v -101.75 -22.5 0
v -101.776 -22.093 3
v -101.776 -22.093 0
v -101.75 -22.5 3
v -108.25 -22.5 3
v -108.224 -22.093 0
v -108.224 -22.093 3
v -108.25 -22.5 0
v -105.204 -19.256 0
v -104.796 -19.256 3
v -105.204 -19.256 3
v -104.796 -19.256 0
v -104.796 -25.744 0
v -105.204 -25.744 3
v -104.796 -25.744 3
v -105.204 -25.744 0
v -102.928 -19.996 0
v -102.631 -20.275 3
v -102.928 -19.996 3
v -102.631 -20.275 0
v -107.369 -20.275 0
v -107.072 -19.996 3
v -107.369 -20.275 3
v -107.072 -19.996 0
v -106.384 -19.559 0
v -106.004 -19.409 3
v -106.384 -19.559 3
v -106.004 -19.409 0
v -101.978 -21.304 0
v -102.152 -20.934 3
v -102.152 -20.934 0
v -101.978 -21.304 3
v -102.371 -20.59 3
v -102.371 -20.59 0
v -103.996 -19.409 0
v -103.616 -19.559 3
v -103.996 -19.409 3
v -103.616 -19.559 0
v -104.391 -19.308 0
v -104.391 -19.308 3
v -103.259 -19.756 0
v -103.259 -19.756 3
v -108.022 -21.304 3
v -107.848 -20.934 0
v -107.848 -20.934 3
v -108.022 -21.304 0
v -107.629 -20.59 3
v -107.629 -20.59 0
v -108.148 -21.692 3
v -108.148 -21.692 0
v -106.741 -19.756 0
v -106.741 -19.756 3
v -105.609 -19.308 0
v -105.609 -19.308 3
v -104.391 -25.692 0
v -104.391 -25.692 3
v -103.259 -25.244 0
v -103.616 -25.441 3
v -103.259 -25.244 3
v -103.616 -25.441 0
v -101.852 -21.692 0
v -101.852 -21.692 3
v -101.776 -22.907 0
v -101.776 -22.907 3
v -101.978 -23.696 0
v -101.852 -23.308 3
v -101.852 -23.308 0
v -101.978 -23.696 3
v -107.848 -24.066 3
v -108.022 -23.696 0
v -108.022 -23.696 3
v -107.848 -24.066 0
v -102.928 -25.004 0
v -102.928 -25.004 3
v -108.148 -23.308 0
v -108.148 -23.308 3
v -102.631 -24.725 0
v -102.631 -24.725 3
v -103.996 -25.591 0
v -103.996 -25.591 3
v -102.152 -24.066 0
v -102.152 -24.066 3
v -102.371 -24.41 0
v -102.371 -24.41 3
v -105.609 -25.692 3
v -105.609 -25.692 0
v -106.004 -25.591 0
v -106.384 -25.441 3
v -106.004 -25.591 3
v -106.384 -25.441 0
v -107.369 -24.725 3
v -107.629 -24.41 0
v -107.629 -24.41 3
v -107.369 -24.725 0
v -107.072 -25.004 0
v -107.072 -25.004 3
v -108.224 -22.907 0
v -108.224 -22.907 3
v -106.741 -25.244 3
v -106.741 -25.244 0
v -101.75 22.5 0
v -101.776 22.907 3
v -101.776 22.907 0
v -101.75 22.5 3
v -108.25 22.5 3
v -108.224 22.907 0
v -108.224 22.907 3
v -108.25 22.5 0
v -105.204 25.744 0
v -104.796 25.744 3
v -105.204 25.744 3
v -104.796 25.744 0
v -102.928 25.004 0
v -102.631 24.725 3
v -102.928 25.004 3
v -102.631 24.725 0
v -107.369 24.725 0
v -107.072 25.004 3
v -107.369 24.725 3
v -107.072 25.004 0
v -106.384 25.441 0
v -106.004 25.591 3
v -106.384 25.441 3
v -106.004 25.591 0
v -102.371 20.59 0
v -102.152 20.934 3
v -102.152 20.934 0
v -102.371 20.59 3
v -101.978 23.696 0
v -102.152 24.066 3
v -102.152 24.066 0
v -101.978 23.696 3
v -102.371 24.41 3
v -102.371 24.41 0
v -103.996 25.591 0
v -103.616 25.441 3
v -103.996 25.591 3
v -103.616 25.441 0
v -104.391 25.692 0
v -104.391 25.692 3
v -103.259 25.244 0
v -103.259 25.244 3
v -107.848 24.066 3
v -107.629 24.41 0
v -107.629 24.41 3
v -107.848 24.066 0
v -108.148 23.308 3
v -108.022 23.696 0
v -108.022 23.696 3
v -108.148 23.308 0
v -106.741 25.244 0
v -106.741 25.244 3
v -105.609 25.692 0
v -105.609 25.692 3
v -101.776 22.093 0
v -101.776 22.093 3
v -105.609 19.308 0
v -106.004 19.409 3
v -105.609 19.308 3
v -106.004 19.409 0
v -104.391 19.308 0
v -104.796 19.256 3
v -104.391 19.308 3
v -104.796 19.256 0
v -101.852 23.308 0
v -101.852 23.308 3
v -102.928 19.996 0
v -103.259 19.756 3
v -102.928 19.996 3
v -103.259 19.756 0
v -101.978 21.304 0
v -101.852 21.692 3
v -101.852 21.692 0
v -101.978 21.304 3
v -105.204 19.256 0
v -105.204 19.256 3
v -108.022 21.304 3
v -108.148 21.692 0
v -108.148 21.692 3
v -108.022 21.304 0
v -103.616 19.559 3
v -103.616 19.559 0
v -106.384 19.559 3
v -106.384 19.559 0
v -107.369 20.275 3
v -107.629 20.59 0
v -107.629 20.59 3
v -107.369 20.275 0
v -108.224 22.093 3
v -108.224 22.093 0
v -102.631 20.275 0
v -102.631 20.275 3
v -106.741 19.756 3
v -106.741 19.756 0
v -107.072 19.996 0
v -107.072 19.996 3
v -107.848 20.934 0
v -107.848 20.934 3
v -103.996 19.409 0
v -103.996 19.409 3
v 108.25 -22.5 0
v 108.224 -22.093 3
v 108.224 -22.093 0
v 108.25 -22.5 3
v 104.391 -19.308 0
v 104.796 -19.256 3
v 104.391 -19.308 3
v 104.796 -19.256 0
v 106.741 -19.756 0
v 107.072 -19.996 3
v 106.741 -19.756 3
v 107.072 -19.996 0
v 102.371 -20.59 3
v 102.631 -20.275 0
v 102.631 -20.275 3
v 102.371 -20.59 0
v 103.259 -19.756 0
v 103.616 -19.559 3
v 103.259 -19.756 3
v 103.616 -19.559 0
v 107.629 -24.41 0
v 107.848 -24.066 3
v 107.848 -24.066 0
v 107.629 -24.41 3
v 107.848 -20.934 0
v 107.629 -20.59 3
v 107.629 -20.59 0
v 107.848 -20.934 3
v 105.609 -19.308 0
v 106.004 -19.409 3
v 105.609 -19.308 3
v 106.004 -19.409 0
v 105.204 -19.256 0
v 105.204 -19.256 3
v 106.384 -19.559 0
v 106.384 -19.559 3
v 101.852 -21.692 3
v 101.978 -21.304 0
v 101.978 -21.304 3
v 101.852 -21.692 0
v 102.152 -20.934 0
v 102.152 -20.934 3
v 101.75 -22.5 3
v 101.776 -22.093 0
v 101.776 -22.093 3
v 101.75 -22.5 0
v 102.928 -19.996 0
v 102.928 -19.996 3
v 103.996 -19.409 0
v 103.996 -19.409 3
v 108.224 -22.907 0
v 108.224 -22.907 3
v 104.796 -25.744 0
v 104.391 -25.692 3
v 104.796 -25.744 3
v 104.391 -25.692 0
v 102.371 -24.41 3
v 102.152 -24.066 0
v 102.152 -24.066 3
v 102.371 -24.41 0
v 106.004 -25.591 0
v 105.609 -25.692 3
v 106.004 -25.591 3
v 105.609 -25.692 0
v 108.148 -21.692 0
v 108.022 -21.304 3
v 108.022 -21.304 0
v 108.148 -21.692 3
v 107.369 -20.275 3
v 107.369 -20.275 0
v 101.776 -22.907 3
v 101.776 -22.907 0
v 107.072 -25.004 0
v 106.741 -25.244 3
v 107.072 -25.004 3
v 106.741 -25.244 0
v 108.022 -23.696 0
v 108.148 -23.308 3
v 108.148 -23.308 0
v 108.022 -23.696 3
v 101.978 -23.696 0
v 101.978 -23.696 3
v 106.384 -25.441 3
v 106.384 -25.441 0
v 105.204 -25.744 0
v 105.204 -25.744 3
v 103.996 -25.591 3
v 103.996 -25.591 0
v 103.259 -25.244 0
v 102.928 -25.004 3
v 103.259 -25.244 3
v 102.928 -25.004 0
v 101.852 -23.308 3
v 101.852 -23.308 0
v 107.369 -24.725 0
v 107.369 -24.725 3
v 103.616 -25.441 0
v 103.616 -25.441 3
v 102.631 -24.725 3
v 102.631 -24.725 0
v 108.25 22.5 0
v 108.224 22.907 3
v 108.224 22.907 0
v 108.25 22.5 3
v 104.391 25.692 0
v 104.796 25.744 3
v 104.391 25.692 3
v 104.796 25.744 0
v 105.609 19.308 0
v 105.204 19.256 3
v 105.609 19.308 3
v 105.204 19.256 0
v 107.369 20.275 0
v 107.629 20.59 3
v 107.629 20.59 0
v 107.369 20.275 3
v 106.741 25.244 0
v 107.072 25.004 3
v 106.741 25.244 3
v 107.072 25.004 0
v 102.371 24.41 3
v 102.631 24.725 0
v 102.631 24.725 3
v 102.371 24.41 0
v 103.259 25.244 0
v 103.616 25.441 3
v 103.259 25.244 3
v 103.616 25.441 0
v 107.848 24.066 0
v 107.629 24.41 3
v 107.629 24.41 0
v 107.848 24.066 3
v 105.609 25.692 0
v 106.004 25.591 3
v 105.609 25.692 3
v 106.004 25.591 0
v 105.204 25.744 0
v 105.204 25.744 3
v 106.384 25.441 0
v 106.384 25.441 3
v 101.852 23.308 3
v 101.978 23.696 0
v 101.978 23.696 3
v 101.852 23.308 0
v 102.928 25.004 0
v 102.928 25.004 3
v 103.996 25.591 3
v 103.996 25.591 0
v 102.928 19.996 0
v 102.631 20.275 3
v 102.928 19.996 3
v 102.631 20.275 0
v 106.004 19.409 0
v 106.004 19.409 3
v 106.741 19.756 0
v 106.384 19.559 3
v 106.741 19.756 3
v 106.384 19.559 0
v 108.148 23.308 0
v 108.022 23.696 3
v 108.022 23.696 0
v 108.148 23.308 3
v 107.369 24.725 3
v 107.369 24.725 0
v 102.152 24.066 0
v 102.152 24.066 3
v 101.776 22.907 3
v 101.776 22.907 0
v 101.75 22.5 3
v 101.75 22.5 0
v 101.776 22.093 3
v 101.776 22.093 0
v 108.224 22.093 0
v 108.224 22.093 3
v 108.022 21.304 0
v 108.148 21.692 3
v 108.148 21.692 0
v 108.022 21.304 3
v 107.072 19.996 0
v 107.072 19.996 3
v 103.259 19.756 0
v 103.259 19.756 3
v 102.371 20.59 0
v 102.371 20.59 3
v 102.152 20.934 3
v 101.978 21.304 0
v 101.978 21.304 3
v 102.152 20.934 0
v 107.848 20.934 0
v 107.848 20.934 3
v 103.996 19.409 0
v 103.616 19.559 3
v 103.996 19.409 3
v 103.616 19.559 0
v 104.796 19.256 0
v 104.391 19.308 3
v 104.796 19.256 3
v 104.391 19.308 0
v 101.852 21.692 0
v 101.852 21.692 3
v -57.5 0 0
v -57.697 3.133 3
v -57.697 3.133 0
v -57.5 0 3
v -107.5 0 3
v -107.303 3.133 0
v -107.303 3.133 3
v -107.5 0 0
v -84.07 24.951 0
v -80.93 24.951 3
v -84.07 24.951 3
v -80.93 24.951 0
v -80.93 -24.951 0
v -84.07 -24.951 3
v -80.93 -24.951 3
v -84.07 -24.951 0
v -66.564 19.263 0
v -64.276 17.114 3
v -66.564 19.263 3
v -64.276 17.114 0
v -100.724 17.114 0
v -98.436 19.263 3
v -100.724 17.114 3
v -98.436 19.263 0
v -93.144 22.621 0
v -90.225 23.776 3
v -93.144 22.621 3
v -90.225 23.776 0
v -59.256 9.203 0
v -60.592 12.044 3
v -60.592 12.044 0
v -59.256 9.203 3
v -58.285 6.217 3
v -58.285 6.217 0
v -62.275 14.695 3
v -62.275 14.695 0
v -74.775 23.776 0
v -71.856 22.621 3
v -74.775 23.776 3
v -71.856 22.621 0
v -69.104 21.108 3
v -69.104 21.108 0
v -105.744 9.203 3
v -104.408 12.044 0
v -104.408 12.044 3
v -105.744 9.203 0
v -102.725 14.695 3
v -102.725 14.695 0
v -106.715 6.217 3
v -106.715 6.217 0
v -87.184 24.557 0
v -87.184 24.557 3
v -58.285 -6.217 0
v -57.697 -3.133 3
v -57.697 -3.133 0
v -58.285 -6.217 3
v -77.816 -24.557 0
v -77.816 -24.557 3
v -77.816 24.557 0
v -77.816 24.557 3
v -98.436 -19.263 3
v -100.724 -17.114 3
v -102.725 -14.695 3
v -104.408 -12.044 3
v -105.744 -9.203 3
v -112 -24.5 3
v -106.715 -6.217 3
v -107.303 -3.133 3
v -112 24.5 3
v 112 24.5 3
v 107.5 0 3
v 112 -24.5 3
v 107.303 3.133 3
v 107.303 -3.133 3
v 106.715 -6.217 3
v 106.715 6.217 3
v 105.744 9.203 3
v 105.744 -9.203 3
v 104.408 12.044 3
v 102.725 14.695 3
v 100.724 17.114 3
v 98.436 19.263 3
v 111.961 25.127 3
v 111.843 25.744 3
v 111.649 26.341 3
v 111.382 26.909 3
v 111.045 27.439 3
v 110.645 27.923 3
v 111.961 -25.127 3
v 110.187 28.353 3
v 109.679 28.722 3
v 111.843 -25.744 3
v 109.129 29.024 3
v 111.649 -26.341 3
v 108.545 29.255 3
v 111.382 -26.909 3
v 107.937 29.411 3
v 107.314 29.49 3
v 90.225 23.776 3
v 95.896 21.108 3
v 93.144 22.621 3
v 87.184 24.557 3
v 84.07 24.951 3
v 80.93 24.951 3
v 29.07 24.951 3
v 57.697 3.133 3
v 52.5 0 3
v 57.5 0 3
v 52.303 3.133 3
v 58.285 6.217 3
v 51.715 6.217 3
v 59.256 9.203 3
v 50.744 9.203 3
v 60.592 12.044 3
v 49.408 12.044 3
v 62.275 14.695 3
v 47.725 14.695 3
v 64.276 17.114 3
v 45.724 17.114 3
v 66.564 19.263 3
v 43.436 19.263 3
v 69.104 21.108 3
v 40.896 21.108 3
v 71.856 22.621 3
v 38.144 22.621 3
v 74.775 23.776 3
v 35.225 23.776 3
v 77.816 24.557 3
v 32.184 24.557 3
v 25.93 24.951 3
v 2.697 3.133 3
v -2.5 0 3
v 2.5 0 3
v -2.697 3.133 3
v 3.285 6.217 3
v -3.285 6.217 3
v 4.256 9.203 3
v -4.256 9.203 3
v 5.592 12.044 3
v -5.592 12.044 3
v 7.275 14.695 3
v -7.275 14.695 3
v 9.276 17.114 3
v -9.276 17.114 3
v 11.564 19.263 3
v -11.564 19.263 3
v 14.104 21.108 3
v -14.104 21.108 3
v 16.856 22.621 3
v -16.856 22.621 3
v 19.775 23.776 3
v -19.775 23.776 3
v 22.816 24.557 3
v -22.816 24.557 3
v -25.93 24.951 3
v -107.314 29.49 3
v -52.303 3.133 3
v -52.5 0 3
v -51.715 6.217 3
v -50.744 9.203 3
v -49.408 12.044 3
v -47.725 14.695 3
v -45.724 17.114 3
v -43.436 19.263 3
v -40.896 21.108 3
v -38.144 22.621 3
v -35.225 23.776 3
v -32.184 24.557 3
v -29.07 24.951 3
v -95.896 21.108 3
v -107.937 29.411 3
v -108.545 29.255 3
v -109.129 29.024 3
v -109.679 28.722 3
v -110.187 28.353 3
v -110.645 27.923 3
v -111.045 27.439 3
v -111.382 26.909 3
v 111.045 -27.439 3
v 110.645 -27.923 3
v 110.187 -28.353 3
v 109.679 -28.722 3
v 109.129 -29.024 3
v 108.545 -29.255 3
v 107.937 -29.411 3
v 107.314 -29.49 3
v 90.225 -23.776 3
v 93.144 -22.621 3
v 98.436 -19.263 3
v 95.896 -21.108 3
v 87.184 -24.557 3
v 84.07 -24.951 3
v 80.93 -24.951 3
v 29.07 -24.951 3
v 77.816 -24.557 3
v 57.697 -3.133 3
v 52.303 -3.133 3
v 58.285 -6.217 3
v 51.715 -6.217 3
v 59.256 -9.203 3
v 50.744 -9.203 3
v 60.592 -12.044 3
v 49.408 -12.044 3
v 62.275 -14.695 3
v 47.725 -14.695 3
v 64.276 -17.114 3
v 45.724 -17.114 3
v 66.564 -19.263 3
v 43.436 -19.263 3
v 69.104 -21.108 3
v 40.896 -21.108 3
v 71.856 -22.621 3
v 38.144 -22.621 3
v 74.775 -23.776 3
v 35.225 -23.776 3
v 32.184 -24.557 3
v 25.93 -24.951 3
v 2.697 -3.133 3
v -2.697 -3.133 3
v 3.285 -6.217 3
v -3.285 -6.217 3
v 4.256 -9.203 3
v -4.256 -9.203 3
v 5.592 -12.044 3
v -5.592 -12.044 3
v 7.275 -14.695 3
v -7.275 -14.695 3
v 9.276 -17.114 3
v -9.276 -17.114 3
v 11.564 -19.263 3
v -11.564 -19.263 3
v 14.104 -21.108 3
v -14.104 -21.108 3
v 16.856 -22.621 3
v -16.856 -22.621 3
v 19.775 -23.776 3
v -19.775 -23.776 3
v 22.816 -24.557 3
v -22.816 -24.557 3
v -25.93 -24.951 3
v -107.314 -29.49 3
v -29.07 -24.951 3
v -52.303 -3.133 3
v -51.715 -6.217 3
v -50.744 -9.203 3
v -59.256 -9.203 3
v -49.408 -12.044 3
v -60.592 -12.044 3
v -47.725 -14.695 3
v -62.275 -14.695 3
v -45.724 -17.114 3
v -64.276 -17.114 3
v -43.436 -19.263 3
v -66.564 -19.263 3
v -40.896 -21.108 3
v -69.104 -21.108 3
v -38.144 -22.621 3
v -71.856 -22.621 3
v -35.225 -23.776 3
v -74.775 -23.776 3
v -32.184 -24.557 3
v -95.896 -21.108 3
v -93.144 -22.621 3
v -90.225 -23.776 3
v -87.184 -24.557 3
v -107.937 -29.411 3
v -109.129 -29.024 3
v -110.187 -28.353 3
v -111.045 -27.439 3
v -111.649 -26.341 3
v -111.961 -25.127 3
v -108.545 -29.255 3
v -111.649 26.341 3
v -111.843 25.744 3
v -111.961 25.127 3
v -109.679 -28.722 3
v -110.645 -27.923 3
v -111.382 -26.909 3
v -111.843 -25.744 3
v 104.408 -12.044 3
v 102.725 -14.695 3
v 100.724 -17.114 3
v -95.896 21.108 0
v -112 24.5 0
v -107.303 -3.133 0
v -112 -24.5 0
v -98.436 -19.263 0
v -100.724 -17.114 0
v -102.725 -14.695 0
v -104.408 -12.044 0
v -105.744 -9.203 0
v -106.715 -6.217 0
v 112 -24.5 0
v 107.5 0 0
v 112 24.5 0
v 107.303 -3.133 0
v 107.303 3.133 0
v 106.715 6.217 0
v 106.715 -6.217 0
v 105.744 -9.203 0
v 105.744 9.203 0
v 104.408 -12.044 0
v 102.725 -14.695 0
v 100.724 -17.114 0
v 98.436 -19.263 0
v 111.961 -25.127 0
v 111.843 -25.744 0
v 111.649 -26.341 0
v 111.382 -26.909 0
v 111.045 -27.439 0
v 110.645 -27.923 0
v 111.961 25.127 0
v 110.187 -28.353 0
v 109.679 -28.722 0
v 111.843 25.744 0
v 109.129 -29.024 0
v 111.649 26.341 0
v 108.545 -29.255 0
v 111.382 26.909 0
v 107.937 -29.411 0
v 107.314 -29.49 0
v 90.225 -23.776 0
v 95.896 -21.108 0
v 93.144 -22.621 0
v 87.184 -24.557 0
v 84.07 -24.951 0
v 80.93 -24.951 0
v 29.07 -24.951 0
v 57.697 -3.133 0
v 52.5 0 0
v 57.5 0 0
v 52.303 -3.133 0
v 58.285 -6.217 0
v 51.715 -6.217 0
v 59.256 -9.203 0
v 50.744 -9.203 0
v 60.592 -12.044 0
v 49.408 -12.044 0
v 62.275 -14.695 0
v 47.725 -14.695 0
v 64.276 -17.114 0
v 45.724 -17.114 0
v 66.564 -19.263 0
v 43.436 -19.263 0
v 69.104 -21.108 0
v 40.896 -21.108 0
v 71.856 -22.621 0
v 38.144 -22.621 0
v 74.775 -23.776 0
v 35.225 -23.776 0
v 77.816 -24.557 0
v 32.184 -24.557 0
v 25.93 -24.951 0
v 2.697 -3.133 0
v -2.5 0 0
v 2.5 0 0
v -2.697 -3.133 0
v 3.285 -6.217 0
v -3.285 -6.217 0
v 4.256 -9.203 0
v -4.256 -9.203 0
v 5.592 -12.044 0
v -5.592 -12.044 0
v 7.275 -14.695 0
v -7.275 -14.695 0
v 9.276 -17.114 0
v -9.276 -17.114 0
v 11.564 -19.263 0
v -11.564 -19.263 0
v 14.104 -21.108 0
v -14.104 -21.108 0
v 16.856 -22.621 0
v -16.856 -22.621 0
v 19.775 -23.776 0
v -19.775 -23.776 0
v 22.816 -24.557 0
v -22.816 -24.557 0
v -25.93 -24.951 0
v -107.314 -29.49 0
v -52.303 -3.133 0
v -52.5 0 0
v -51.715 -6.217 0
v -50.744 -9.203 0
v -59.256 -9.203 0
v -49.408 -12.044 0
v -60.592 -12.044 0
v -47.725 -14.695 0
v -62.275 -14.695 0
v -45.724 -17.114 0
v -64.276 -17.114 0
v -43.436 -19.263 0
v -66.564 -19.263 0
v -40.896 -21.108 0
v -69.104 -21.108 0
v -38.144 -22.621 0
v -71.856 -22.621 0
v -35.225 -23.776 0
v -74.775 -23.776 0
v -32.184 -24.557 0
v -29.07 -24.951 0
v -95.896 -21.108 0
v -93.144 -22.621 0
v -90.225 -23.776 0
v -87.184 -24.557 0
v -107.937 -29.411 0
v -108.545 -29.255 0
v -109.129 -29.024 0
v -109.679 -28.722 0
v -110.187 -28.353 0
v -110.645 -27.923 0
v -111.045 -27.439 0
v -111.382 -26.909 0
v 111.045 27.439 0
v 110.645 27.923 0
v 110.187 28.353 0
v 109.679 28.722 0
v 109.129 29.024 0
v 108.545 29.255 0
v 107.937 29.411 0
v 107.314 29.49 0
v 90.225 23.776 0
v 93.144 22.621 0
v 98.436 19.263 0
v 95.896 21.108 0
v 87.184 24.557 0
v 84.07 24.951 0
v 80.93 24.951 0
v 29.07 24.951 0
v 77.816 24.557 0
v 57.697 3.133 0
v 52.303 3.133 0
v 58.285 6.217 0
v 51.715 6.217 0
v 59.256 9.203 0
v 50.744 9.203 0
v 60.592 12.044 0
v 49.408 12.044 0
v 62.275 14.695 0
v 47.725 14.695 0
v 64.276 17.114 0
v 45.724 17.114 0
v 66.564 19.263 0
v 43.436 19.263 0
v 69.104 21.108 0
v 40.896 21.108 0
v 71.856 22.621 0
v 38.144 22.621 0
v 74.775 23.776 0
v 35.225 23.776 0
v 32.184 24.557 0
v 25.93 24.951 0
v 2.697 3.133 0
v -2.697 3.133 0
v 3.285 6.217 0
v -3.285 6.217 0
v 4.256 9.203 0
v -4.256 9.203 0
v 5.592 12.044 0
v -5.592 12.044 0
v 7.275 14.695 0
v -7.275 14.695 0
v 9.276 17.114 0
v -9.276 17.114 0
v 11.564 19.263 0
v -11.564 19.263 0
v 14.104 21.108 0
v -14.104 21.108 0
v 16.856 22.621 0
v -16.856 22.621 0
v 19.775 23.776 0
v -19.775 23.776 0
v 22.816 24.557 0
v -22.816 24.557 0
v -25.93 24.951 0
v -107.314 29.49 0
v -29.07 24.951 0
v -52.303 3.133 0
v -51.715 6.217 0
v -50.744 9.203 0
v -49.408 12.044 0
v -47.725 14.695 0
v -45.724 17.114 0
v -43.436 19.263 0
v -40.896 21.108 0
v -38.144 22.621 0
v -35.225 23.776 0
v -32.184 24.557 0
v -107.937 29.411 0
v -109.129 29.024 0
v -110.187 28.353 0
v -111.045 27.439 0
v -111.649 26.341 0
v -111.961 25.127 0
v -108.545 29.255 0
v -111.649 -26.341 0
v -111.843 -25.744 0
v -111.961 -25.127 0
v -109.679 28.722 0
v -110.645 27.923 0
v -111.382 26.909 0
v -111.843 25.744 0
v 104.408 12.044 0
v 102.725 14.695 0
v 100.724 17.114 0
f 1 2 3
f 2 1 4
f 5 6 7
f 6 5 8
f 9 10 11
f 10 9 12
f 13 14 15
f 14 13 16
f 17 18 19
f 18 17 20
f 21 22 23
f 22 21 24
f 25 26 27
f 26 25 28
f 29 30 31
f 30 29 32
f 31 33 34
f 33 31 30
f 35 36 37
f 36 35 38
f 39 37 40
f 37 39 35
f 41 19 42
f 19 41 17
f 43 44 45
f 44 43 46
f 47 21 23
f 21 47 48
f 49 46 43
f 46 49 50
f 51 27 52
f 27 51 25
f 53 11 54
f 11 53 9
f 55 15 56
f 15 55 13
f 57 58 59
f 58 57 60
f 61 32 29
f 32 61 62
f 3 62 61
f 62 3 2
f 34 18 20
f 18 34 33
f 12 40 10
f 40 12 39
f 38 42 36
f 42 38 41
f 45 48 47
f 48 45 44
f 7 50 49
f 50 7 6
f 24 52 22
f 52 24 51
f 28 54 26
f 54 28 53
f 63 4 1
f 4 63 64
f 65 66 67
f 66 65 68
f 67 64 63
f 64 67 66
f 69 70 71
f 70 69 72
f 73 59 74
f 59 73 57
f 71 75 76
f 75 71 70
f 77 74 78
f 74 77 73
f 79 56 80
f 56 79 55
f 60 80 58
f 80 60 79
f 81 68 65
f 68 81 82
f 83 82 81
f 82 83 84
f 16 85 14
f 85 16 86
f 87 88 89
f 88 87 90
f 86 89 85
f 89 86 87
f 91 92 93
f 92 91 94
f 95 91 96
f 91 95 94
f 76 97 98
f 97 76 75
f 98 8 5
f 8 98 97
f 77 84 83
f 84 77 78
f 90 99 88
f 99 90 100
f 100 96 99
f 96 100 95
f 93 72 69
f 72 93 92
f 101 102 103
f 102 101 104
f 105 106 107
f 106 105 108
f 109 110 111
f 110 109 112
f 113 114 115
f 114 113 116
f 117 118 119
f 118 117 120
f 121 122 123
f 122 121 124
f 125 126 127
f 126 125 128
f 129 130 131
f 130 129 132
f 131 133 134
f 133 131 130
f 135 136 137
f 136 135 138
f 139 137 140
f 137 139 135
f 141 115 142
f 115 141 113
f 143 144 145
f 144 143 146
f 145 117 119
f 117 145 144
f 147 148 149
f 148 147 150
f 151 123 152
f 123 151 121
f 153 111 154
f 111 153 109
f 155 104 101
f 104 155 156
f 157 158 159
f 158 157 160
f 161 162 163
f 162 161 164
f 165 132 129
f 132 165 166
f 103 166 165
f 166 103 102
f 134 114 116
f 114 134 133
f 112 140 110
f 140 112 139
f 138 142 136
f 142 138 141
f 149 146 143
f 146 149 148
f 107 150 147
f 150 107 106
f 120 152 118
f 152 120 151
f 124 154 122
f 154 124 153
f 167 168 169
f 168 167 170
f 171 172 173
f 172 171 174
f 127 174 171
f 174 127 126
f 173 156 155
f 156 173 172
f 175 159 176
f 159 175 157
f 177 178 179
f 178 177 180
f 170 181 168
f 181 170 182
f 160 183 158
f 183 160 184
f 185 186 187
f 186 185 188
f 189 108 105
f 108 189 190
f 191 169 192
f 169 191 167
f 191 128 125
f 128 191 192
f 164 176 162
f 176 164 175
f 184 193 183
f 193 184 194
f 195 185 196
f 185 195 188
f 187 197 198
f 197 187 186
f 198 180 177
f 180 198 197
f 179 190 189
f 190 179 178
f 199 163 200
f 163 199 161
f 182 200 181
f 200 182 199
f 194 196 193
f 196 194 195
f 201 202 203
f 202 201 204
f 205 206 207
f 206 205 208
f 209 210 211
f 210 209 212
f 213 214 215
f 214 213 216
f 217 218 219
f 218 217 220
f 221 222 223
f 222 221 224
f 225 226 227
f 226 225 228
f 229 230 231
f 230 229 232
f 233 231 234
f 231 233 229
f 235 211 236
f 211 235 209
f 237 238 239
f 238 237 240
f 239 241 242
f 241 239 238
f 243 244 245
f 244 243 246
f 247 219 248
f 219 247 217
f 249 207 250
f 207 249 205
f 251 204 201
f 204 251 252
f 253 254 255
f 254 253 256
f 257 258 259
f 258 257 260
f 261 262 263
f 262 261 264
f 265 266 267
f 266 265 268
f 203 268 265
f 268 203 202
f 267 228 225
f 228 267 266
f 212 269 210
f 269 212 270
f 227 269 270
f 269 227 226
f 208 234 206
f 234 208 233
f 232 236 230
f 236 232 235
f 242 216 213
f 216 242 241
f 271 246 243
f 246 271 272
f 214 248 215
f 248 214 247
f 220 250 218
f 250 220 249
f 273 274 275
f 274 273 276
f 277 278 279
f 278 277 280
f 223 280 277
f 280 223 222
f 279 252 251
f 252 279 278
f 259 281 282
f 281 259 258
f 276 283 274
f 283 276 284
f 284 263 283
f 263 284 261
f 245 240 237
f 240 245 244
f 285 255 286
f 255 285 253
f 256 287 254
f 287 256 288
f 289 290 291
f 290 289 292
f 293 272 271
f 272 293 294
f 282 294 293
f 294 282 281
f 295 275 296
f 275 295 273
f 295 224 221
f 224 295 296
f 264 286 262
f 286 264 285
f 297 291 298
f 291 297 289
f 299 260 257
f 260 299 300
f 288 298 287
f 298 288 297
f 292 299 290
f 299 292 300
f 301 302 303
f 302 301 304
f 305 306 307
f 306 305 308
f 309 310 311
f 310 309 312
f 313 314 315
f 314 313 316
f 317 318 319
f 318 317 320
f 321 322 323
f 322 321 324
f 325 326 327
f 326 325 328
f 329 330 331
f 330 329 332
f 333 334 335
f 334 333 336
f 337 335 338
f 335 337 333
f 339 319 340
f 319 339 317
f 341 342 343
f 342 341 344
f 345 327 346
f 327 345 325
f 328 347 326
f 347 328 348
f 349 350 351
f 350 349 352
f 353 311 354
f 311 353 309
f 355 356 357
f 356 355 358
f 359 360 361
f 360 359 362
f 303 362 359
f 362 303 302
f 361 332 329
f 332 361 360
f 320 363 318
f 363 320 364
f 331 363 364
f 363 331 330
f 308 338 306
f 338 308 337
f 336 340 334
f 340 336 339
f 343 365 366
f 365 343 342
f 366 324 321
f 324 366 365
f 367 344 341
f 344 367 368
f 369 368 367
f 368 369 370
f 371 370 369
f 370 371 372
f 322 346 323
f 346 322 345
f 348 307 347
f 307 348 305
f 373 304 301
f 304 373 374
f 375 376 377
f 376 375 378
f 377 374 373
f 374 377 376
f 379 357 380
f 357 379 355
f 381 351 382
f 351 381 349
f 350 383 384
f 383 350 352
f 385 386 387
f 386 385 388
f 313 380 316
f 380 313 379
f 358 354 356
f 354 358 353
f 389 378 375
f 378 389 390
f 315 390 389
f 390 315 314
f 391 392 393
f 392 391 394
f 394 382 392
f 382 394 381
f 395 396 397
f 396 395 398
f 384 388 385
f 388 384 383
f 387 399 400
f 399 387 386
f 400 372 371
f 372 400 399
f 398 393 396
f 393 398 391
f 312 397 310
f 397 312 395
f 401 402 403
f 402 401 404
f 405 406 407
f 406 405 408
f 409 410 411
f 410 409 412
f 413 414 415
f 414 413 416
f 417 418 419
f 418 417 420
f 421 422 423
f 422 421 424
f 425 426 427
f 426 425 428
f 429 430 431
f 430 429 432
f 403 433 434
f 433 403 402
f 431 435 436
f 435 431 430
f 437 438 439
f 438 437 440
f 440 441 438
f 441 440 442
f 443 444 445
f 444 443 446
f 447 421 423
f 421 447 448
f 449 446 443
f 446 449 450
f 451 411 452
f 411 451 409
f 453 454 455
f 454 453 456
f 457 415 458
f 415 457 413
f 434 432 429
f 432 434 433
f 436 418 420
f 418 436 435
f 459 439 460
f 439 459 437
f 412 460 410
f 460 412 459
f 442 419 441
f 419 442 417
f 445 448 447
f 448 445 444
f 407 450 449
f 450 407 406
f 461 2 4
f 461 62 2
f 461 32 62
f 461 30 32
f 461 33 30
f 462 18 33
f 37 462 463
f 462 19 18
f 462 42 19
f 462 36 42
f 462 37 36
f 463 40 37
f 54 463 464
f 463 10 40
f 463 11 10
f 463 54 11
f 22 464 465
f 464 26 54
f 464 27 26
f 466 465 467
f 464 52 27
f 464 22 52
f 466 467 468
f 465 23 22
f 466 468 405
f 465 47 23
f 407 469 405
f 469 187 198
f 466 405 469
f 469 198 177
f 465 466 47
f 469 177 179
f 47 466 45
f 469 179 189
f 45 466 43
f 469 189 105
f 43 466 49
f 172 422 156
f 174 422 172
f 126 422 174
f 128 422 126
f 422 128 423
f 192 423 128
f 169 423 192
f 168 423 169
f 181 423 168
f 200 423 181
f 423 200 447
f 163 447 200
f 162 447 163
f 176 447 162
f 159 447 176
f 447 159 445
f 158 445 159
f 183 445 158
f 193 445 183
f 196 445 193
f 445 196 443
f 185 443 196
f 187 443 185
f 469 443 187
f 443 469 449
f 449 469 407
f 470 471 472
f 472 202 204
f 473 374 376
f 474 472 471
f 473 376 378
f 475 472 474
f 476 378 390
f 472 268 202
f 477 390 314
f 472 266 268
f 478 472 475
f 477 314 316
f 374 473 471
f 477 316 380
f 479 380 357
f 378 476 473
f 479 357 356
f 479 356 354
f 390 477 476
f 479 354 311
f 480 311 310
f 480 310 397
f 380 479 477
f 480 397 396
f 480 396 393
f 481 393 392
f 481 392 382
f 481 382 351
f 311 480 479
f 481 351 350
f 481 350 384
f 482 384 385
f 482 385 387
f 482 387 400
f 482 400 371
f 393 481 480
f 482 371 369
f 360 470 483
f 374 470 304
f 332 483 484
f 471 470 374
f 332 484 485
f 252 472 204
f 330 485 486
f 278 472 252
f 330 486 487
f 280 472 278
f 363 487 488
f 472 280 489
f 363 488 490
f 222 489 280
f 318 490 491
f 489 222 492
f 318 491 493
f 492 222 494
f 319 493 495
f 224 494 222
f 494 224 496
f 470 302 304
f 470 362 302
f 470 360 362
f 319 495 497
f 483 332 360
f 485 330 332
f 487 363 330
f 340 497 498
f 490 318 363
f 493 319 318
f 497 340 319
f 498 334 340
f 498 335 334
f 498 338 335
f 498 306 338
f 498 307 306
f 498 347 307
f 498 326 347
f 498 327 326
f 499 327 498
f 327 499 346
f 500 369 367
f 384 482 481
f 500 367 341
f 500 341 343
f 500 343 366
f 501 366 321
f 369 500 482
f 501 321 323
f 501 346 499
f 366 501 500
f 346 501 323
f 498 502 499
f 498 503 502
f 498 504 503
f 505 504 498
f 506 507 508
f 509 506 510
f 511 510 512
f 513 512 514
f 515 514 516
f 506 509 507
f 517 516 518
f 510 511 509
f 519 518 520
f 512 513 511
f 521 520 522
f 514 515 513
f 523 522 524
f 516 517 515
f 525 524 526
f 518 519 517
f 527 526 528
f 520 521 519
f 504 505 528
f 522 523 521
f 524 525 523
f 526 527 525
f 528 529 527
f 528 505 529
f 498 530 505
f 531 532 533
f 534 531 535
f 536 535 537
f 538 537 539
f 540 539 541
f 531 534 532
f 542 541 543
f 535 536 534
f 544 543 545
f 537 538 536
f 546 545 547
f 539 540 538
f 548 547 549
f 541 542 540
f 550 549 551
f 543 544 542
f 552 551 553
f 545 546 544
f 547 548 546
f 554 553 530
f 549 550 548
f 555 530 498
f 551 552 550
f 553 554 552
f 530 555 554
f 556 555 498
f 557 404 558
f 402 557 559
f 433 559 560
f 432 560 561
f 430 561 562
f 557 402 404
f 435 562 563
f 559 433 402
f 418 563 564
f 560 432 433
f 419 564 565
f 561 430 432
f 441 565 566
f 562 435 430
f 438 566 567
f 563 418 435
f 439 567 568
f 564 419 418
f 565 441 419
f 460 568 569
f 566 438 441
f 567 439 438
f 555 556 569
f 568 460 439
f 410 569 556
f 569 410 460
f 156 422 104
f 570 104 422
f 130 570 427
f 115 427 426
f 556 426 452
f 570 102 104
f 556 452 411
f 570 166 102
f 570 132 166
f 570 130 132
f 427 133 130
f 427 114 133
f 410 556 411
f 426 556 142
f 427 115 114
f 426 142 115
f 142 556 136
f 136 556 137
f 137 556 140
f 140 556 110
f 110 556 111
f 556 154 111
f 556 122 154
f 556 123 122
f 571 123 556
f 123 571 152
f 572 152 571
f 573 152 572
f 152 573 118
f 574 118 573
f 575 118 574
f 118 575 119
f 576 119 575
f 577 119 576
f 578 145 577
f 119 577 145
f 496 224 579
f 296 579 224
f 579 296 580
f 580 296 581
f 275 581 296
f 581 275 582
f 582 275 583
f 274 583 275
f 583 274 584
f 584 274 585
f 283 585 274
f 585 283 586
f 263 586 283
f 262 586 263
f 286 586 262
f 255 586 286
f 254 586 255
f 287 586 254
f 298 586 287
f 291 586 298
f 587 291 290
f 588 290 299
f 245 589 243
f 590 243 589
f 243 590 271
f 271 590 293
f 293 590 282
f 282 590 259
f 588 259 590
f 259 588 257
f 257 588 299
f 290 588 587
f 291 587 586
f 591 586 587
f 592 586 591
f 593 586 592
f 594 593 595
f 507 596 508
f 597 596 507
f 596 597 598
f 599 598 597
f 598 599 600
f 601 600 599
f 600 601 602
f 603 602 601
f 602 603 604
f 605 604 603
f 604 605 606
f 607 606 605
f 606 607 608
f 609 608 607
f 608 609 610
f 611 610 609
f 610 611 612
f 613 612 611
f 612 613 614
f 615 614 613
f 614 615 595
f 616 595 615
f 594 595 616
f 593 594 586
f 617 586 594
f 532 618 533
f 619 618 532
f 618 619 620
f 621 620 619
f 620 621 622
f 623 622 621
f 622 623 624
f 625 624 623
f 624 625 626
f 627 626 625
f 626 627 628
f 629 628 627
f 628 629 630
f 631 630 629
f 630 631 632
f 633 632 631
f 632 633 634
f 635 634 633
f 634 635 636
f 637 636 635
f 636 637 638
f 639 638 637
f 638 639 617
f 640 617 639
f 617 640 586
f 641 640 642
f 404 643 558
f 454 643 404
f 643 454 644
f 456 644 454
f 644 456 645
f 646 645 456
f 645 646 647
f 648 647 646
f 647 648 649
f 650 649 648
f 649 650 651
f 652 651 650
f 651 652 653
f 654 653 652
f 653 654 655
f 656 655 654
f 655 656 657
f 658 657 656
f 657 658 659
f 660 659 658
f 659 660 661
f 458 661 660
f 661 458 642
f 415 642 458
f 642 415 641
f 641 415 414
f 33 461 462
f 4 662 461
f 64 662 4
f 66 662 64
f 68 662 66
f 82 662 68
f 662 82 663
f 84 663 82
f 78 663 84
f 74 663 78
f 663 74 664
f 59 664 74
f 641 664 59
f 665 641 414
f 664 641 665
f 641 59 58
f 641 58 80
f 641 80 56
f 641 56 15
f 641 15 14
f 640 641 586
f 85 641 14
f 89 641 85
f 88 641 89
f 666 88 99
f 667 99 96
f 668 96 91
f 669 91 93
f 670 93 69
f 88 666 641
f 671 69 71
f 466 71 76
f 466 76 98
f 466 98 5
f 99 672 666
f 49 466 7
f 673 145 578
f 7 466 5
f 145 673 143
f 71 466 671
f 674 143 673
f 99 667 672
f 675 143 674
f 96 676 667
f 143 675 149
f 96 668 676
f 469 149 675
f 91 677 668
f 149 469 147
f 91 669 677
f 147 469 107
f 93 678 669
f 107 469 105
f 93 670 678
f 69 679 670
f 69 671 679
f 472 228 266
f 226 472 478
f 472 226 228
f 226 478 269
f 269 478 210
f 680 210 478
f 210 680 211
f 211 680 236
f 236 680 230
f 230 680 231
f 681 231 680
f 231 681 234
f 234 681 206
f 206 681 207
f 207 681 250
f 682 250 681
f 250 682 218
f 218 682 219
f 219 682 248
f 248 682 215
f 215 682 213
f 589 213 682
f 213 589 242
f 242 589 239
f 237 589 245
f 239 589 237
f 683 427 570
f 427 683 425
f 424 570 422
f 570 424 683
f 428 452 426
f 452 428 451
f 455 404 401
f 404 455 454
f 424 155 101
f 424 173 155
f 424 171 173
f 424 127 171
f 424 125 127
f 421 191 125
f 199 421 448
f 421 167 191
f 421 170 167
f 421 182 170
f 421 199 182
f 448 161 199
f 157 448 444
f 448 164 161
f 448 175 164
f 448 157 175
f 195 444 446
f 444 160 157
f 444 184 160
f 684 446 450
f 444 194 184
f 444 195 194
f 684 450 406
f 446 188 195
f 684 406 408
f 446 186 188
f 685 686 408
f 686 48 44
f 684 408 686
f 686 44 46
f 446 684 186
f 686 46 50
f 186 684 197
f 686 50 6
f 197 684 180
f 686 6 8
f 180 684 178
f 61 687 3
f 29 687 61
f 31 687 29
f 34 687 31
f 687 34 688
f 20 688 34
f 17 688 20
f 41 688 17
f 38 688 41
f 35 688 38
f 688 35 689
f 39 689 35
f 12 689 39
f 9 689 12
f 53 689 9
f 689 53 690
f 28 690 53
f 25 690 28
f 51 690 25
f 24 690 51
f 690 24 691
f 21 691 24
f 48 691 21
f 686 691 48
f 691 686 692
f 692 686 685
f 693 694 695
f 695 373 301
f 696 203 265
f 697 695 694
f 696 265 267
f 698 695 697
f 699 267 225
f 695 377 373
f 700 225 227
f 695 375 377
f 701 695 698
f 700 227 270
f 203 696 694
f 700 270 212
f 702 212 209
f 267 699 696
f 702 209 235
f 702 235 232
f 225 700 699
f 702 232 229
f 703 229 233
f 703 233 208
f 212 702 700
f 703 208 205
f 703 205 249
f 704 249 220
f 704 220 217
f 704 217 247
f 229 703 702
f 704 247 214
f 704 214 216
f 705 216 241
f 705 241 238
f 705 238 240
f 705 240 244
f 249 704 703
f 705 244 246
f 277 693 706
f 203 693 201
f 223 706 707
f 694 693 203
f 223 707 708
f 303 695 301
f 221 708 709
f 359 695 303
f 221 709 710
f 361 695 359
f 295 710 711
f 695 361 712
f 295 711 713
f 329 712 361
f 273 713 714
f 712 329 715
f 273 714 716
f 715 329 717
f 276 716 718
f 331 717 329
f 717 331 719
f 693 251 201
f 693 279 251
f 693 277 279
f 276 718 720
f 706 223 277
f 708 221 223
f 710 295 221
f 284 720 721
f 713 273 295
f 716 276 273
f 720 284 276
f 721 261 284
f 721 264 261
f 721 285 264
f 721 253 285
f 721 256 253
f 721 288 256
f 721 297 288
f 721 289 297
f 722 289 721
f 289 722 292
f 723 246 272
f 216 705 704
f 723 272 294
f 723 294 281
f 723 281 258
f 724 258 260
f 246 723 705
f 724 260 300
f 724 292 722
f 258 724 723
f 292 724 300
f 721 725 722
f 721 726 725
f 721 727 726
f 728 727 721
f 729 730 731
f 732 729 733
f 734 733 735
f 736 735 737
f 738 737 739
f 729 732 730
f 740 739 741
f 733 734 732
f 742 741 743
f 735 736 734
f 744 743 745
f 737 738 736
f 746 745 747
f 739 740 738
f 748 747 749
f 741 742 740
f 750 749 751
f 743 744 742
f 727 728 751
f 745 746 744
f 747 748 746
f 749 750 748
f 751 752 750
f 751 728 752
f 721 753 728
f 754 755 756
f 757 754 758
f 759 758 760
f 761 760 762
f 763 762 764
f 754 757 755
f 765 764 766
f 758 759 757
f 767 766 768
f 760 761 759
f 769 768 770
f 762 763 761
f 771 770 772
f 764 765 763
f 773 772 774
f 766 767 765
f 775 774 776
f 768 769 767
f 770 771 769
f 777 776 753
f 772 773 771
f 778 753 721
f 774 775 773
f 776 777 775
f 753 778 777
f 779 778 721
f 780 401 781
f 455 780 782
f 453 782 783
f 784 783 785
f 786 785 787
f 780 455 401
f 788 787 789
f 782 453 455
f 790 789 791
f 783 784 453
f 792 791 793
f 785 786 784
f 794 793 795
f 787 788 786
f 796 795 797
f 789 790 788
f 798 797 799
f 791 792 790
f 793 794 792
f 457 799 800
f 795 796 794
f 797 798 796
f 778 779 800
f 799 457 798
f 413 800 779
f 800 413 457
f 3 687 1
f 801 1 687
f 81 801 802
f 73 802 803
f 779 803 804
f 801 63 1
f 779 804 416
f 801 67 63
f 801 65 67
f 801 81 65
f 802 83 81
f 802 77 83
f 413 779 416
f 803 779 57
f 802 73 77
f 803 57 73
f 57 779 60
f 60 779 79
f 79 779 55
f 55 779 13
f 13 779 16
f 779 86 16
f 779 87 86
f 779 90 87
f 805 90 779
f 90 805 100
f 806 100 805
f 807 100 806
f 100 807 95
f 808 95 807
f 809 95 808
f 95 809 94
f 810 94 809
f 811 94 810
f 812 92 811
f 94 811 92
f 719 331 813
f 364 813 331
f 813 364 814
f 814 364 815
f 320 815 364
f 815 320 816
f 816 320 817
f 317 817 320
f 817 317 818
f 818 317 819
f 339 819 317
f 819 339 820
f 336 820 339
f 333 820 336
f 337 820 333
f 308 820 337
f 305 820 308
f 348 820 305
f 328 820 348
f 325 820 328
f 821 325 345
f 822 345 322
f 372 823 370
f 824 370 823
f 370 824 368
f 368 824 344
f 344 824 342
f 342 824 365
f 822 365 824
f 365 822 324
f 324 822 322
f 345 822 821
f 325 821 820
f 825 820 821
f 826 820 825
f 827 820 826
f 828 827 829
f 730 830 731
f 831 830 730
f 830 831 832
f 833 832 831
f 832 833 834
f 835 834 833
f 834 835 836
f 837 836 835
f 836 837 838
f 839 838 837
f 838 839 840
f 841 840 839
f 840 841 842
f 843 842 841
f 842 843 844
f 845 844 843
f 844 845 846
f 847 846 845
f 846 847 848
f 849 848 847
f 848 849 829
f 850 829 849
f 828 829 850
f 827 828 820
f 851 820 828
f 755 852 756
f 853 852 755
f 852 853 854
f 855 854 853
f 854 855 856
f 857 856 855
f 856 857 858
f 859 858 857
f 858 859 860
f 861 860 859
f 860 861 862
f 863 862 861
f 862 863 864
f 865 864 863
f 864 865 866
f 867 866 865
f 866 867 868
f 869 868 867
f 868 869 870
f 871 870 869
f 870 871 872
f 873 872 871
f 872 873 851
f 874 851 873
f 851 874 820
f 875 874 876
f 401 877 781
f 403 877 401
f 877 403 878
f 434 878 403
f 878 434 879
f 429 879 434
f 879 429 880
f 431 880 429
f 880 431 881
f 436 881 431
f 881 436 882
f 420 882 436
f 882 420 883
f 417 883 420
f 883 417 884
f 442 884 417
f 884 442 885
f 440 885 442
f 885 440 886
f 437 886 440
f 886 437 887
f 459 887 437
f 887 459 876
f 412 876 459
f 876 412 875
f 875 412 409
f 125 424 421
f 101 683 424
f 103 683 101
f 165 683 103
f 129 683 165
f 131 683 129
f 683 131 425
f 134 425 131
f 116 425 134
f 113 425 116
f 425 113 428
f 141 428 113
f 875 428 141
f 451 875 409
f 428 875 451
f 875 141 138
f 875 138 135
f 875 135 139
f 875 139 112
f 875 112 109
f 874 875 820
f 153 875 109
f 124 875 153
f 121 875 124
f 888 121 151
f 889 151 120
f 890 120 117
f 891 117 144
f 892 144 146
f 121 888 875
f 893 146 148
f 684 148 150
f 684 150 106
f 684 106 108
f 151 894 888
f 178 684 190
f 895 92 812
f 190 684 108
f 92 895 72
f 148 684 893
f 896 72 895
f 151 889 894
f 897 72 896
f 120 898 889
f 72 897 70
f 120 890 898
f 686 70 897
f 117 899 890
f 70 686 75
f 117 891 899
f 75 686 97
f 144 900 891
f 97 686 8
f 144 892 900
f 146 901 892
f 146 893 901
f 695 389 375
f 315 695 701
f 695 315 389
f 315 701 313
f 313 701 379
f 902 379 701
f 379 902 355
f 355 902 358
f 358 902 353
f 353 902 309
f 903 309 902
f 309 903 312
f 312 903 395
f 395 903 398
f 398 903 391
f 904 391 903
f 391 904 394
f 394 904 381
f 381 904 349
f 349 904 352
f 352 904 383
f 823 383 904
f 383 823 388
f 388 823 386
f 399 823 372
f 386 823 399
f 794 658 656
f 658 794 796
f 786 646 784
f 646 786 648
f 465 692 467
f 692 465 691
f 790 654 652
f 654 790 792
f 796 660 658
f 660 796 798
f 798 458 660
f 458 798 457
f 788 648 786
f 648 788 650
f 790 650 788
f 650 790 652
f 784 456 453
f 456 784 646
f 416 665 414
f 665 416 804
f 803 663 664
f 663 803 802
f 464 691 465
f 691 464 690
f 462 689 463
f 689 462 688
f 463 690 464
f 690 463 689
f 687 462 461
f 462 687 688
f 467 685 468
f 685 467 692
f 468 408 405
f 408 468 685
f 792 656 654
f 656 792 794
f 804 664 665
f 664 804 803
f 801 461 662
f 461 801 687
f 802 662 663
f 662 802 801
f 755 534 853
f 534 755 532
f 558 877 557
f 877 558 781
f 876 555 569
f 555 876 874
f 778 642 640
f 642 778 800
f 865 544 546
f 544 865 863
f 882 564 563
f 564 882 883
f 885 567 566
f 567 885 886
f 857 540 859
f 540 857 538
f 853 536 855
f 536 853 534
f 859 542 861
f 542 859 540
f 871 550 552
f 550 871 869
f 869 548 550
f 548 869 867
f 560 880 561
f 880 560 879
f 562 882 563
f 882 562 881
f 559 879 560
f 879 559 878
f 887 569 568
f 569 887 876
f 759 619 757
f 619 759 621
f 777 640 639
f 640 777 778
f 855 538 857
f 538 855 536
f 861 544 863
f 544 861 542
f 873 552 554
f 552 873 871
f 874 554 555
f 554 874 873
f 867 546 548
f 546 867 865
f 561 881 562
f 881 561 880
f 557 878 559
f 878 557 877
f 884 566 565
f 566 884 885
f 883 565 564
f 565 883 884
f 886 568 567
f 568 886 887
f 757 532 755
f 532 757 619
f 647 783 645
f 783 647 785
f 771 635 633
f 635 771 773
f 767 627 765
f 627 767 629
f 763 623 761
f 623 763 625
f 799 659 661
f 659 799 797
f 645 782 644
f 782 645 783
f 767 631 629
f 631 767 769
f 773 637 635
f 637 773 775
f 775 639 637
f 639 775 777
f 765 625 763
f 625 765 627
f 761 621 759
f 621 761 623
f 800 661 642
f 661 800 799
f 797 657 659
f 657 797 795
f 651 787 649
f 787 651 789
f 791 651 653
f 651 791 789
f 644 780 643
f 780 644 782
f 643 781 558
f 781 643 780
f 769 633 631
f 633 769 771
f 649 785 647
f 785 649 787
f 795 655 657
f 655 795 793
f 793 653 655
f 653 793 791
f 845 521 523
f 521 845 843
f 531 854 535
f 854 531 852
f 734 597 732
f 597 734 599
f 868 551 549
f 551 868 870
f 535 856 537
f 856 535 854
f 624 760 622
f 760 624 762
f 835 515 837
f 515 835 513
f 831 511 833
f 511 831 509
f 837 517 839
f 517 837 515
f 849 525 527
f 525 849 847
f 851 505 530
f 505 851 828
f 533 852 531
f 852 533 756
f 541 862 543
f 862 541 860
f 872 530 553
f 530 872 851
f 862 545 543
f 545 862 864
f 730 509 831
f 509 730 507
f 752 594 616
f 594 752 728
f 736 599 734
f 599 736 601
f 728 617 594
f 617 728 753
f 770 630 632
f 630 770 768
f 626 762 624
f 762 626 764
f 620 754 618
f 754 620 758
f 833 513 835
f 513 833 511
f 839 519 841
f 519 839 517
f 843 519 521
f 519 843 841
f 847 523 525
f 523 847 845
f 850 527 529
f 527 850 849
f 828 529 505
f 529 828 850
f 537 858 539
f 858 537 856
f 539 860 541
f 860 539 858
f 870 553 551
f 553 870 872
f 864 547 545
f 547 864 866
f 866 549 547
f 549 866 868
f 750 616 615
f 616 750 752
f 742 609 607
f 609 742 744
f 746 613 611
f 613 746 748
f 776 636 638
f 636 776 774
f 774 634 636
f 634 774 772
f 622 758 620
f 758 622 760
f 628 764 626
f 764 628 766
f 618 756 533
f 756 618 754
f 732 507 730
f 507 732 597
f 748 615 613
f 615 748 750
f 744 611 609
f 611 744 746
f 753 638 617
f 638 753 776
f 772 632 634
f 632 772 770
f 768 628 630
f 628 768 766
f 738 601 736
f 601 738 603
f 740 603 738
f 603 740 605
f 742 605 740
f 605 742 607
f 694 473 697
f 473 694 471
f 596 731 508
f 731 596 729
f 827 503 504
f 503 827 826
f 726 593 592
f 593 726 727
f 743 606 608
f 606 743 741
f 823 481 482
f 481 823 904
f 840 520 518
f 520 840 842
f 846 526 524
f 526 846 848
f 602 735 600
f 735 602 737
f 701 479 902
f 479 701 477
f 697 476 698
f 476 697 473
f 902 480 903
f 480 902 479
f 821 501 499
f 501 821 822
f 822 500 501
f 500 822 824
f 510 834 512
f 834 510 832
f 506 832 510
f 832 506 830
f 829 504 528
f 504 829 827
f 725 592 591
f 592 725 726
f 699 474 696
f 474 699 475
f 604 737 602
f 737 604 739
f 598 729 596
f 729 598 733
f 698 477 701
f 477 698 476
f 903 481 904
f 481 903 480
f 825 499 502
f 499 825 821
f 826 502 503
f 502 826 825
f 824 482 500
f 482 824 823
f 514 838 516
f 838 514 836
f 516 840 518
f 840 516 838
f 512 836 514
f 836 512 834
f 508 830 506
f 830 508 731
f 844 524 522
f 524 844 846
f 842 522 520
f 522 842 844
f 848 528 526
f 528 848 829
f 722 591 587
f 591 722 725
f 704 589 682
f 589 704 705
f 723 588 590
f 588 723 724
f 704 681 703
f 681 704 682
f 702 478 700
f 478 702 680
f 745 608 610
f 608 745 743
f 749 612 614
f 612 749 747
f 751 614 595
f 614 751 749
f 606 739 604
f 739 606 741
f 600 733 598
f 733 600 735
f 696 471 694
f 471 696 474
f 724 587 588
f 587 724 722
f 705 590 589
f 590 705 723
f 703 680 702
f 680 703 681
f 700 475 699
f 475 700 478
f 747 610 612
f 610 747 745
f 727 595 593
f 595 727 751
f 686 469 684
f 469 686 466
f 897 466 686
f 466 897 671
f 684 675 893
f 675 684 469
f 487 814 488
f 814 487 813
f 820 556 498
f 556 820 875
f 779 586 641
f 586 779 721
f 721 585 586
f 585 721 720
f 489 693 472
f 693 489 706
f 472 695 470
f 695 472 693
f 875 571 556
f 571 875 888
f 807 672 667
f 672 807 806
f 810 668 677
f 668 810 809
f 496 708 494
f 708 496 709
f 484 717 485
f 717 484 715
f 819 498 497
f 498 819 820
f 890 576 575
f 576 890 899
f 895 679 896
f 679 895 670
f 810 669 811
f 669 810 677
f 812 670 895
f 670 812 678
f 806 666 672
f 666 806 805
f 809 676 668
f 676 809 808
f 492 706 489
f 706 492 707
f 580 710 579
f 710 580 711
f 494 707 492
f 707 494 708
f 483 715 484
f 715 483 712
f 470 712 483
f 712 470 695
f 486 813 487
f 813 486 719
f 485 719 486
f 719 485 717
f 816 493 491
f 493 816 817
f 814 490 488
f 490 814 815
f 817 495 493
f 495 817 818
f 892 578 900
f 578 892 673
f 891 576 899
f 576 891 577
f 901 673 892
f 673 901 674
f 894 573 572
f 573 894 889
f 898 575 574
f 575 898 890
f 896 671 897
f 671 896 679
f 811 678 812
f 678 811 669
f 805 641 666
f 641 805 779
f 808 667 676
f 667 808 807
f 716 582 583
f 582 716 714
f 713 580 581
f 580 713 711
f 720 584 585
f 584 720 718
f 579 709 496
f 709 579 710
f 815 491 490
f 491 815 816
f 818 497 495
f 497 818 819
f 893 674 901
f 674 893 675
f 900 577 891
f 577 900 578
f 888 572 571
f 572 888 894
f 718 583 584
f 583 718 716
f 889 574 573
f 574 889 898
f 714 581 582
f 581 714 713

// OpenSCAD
$fn = 50;


difference() {
	union() {
		hull() {
			translate(v = [-107.0000000000, 24.5000000000, 0]) {
				cylinder(h = 3, r = 5);
			}
			translate(v = [107.0000000000, 24.5000000000, 0]) {
				cylinder(h = 3, r = 5);
			}
			translate(v = [-107.0000000000, -24.5000000000, 0]) {
				cylinder(h = 3, r = 5);
			}
			translate(v = [107.0000000000, -24.5000000000, 0]) {
				cylinder(h = 3, r = 5);
			}
		}
	}
	union() {
		#translate(v = [-105.0000000000, -22.5000000000, -100.0000000000]) {
			cylinder(h = 200, r = 3.2500000000);
		}
		#translate(v = [-105.0000000000, 22.5000000000, -100.0000000000]) {
			cylinder(h = 200, r = 3.2500000000);
		}
		#translate(v = [105.0000000000, -22.5000000000, -100.0000000000]) {
			cylinder(h = 200, r = 3.2500000000);
		}
		#translate(v = [105.0000000000, 22.5000000000, -100.0000000000]) {
			cylinder(h = 200, r = 3.2500000000);
		}
		#translate(v = [-82.5000000000, 0, 0]) {
			cylinder(h = 3, r = 25.0000000000);
		}
		#translate(v = [-27.5000000000, 0, 0]) {
			cylinder(h = 3, r = 25.0000000000);
		}
		#translate(v = [27.5000000000, 0, 0]) {
			cylinder(h = 3, r = 25.0000000000);
		}
		#translate(v = [82.5000000000, 0, 0]) {
			cylinder(h = 3, r = 25.0000000000);
		}
	}
}
